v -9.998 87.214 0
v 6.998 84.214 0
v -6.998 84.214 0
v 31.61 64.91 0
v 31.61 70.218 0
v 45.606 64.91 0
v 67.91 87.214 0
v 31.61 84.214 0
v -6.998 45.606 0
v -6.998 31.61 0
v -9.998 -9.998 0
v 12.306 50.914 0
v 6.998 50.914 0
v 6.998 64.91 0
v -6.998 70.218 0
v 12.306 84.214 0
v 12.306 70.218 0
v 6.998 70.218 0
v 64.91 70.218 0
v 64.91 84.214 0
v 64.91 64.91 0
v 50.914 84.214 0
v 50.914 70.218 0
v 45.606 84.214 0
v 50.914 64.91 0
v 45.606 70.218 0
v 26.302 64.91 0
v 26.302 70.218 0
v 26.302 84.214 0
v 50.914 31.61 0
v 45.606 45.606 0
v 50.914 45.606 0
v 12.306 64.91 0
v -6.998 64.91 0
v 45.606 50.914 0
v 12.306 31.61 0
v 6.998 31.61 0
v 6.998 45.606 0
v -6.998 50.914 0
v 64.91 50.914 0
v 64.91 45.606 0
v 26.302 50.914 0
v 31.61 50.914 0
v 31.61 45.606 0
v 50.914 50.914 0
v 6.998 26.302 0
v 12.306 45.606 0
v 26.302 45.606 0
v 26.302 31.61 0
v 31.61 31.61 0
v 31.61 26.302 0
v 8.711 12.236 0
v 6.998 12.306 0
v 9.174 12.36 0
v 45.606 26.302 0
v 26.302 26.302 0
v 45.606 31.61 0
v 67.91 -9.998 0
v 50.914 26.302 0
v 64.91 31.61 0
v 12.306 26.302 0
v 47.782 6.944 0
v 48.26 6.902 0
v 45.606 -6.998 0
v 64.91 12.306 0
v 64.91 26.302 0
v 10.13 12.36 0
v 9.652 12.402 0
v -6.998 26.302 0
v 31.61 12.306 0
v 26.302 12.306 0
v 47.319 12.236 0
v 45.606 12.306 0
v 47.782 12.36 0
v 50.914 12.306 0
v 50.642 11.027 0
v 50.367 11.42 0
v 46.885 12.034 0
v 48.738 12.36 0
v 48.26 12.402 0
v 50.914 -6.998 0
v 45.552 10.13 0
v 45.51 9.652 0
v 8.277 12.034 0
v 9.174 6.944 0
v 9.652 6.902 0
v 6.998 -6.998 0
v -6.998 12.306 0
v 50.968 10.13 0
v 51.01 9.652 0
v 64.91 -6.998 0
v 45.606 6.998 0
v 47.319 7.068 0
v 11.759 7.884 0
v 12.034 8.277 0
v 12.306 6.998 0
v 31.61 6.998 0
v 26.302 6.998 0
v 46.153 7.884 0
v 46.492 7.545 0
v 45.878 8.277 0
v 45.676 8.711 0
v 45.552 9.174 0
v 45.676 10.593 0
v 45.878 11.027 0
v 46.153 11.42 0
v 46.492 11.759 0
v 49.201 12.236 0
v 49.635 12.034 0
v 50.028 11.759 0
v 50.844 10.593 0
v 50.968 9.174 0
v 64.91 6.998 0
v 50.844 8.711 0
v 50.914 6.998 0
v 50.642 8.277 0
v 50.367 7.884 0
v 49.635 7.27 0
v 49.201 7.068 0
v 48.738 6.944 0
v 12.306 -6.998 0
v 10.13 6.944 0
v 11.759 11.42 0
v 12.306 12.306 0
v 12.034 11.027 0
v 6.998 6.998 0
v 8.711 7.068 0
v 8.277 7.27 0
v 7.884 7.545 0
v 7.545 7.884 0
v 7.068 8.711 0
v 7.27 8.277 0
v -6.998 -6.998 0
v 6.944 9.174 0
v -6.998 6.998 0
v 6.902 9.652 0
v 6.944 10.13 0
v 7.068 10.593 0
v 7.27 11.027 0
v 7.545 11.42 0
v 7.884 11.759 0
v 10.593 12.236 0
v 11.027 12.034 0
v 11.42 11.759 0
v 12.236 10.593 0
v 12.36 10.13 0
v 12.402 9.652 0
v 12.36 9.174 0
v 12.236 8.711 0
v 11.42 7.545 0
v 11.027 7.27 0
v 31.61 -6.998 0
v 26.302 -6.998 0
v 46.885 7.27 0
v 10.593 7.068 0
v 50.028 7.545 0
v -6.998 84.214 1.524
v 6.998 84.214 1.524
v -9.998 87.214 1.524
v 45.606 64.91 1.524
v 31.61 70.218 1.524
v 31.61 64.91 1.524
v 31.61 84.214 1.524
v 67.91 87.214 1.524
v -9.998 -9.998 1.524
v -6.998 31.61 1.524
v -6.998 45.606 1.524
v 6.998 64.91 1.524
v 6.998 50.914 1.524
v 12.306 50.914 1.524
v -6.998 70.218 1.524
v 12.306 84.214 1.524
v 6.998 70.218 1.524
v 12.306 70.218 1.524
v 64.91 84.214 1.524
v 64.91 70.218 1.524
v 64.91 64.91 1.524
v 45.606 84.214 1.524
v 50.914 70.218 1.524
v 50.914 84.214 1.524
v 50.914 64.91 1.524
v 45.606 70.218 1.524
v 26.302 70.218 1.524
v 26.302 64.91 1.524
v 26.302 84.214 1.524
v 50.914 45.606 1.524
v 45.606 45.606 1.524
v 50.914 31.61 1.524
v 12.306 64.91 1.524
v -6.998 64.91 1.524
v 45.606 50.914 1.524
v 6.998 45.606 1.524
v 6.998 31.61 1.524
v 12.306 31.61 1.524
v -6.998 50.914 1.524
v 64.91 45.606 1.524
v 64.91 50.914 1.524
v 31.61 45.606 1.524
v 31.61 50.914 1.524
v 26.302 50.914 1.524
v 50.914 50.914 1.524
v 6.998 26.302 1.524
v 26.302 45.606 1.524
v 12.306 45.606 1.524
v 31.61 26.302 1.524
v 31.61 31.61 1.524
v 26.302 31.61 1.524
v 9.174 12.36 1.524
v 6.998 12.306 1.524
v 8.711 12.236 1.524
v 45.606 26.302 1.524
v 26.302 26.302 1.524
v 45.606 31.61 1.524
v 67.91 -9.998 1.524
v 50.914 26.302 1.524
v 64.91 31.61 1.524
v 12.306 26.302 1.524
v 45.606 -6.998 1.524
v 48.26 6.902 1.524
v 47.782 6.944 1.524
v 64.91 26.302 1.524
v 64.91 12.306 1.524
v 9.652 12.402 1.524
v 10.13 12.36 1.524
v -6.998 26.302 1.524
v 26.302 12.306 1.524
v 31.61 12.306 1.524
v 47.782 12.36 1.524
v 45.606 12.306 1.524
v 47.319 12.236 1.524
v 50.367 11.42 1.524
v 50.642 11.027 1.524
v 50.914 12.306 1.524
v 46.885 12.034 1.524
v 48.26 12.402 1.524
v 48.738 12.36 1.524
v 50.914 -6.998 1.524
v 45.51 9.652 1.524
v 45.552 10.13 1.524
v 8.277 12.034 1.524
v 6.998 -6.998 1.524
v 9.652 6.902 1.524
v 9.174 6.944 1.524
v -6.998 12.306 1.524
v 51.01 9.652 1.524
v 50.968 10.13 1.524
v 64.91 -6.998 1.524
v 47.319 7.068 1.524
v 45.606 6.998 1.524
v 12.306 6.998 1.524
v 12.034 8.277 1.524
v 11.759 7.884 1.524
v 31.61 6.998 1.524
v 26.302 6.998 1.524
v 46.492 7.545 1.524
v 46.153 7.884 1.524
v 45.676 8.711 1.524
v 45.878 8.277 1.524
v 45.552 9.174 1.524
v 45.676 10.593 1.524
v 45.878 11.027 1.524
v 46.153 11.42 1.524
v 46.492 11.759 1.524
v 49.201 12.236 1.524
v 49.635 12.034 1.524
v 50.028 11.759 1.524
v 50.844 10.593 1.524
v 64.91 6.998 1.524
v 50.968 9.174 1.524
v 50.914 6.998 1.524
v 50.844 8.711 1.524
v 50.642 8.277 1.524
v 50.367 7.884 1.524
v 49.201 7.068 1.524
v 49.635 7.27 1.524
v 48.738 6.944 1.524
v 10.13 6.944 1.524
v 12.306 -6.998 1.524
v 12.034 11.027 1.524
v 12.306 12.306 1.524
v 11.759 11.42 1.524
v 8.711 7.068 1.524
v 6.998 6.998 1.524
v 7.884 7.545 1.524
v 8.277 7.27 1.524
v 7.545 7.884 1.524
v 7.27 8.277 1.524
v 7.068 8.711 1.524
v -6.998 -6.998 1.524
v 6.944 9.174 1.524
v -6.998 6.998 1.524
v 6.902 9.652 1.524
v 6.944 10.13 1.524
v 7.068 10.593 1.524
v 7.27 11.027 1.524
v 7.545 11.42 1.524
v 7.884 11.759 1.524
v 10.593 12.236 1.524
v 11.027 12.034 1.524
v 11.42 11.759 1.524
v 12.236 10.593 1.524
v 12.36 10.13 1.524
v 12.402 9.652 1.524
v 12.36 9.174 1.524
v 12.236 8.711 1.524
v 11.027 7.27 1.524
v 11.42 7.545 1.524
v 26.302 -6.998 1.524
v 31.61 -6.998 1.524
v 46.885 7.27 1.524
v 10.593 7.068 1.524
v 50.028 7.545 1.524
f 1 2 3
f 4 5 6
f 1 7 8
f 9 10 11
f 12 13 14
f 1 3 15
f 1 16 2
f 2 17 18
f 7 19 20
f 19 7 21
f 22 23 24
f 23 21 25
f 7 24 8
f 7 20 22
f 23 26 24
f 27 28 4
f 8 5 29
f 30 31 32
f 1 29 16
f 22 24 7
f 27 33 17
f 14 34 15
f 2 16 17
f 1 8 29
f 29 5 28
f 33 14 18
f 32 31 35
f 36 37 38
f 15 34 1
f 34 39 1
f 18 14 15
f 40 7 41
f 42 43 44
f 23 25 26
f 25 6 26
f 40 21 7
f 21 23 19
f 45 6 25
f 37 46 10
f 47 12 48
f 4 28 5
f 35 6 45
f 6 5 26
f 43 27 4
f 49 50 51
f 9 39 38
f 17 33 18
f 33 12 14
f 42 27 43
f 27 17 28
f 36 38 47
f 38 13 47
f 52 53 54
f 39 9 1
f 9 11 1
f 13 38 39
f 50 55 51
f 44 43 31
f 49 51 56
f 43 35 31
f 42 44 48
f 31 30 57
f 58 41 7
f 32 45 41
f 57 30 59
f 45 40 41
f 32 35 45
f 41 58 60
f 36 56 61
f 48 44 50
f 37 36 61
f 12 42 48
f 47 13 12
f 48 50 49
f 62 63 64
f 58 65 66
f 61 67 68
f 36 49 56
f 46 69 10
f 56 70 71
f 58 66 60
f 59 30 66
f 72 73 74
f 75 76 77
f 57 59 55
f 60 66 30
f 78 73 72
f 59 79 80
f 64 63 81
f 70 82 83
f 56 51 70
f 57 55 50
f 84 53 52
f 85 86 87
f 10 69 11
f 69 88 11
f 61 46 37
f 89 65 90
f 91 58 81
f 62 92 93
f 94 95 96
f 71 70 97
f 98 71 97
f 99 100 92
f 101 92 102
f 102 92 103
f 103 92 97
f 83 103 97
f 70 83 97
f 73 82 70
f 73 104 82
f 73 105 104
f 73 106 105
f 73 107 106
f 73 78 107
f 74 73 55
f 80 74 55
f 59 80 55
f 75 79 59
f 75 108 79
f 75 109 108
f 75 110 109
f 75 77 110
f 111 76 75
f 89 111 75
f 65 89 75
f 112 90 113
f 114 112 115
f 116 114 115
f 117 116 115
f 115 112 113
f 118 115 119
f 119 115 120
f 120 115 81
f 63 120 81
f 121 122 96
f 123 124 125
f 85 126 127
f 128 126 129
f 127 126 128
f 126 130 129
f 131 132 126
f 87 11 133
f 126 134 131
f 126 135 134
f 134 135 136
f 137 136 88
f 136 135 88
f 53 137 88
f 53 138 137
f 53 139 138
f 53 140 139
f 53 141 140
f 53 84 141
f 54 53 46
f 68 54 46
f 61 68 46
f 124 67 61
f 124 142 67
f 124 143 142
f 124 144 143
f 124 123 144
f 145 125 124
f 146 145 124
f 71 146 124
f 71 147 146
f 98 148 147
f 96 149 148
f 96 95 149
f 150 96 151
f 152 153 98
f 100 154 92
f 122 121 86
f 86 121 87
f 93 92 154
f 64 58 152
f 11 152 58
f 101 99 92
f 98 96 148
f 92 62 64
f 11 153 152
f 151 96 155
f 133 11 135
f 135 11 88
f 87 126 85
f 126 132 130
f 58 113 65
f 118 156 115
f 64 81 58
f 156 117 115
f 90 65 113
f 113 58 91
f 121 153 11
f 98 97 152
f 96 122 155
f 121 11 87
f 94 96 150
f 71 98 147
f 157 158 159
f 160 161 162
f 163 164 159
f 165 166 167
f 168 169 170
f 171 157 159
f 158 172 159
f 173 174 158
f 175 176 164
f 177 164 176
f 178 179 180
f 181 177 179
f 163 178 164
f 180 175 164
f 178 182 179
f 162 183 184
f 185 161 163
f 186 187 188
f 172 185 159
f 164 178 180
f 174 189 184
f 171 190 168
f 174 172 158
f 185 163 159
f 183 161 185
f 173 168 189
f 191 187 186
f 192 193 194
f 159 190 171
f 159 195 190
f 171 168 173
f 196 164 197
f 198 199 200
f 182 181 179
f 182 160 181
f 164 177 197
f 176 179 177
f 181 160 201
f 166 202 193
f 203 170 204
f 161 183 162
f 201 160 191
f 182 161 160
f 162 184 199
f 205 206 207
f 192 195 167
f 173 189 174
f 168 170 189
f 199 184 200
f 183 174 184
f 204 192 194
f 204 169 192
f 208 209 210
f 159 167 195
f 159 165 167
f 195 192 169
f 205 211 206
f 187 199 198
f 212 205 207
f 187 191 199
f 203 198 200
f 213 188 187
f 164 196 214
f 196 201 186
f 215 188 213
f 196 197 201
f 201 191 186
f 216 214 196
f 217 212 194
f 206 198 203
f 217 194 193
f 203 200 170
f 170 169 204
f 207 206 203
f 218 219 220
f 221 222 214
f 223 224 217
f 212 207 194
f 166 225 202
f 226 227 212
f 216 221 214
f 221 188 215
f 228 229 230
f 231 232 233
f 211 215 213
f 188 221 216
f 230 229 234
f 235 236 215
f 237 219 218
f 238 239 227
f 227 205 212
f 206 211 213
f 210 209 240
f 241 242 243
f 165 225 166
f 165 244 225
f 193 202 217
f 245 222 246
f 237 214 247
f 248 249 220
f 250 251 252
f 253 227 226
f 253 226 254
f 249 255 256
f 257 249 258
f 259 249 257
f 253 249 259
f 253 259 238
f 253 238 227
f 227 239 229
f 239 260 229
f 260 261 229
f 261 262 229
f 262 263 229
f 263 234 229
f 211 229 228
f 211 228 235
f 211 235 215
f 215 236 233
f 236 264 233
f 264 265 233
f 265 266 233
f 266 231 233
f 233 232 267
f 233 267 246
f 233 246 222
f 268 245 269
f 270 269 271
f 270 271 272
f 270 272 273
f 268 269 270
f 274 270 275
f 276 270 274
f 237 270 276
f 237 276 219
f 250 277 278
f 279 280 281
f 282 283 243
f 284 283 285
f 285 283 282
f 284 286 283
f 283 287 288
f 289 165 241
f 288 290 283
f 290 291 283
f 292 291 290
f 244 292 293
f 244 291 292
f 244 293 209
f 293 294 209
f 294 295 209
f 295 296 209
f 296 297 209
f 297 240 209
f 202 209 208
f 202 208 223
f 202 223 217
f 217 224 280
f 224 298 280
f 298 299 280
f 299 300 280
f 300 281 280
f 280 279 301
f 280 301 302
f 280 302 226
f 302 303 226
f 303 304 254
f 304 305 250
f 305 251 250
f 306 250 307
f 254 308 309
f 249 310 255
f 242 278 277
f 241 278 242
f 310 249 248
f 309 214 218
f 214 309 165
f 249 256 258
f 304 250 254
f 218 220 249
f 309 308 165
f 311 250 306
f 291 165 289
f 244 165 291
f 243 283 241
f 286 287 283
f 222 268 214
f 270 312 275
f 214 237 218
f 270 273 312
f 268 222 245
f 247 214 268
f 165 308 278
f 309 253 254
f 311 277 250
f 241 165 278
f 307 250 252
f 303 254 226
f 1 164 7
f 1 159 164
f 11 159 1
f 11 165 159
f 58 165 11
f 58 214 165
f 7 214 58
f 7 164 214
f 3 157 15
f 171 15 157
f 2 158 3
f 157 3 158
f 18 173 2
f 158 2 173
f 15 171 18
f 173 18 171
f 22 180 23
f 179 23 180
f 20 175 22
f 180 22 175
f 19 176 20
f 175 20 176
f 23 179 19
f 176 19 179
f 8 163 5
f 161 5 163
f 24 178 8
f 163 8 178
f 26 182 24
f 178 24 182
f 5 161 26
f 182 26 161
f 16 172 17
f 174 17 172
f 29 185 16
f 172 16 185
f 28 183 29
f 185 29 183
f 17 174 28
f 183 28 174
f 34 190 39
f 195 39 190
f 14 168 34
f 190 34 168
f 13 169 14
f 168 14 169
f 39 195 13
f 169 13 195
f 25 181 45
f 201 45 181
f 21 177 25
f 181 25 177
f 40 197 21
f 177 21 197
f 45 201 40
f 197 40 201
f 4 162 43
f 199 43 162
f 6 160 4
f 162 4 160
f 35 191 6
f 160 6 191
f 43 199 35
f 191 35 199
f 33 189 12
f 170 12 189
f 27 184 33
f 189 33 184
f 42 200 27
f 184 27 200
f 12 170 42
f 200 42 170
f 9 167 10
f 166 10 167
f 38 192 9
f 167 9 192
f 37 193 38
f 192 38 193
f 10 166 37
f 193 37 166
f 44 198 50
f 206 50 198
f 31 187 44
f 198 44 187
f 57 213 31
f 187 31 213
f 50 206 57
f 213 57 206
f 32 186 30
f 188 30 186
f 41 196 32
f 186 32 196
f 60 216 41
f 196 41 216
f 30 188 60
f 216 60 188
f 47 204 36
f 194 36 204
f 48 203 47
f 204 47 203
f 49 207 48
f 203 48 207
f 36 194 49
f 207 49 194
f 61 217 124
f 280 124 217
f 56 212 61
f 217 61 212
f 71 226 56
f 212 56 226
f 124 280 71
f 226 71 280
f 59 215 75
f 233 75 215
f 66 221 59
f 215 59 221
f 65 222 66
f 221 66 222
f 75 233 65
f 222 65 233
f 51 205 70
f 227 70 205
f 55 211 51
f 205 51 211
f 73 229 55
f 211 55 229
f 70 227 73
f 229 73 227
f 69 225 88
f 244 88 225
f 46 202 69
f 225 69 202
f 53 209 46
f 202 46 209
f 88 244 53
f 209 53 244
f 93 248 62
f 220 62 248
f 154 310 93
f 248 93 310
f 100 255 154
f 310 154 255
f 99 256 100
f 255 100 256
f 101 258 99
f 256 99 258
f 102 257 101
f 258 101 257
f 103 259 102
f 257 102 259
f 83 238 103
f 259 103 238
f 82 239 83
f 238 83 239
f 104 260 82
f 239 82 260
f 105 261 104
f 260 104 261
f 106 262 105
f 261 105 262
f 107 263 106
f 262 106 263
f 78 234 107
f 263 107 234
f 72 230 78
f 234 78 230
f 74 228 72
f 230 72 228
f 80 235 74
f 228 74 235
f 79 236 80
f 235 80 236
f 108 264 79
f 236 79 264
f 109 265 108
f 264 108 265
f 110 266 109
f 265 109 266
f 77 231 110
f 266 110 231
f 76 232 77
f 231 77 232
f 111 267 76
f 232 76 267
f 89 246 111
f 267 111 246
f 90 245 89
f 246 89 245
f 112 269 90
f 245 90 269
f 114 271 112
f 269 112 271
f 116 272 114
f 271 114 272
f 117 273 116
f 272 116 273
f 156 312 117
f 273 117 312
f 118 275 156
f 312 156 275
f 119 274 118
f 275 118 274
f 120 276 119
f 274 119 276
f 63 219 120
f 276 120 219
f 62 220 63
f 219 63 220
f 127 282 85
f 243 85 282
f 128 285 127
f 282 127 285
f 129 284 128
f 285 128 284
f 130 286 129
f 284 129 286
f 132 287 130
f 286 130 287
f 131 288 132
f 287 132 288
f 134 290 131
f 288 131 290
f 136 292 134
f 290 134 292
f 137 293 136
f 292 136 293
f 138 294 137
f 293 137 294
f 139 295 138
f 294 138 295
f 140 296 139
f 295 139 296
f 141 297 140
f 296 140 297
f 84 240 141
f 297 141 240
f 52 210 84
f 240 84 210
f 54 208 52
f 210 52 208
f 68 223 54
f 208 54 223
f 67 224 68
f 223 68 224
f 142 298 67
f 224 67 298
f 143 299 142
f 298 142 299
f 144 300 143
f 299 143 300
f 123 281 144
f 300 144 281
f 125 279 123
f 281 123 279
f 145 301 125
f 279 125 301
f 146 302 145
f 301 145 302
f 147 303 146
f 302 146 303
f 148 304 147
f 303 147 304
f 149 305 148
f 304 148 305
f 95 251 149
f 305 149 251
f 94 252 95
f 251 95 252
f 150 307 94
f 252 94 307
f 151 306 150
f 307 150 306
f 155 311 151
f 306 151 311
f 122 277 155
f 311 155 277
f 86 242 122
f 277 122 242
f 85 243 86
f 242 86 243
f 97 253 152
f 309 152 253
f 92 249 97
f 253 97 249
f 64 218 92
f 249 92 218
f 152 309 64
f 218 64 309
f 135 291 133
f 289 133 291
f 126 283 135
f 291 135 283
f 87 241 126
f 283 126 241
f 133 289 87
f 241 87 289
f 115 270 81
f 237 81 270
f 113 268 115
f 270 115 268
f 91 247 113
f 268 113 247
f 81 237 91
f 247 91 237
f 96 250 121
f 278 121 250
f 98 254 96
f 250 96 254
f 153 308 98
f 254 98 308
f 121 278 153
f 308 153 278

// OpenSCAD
rows = 4;
cols = 5;
border = 3;

dx = .76*25.4;
dy = .76*25.4;

sx = .551*25.4;
sy = .551*25.4;

hdia = 5.5; // note: m2.5 nylon screw heads are 4.5mm dia
linear_extrude(.06*25.4)
difference() {
    translate([-border-sx/2,-border-sx/2])
    square([dx*(rows-1) + sx + 2*border, dy*(cols-1) + sy +2*border]);

    for(r=[0:1:rows-1]) {
        for(c=[0:1:cols-1]) {
            translate([dx*r, dy*c])
            square([sx,sy], center=true);
        }

        translate([dx/2, dy/2])
        circle(d=hdia, $fn=36);
        translate([dx*(2 +1/2), dy/2])
        circle(d=hdia, $fn=36);
    }

}
